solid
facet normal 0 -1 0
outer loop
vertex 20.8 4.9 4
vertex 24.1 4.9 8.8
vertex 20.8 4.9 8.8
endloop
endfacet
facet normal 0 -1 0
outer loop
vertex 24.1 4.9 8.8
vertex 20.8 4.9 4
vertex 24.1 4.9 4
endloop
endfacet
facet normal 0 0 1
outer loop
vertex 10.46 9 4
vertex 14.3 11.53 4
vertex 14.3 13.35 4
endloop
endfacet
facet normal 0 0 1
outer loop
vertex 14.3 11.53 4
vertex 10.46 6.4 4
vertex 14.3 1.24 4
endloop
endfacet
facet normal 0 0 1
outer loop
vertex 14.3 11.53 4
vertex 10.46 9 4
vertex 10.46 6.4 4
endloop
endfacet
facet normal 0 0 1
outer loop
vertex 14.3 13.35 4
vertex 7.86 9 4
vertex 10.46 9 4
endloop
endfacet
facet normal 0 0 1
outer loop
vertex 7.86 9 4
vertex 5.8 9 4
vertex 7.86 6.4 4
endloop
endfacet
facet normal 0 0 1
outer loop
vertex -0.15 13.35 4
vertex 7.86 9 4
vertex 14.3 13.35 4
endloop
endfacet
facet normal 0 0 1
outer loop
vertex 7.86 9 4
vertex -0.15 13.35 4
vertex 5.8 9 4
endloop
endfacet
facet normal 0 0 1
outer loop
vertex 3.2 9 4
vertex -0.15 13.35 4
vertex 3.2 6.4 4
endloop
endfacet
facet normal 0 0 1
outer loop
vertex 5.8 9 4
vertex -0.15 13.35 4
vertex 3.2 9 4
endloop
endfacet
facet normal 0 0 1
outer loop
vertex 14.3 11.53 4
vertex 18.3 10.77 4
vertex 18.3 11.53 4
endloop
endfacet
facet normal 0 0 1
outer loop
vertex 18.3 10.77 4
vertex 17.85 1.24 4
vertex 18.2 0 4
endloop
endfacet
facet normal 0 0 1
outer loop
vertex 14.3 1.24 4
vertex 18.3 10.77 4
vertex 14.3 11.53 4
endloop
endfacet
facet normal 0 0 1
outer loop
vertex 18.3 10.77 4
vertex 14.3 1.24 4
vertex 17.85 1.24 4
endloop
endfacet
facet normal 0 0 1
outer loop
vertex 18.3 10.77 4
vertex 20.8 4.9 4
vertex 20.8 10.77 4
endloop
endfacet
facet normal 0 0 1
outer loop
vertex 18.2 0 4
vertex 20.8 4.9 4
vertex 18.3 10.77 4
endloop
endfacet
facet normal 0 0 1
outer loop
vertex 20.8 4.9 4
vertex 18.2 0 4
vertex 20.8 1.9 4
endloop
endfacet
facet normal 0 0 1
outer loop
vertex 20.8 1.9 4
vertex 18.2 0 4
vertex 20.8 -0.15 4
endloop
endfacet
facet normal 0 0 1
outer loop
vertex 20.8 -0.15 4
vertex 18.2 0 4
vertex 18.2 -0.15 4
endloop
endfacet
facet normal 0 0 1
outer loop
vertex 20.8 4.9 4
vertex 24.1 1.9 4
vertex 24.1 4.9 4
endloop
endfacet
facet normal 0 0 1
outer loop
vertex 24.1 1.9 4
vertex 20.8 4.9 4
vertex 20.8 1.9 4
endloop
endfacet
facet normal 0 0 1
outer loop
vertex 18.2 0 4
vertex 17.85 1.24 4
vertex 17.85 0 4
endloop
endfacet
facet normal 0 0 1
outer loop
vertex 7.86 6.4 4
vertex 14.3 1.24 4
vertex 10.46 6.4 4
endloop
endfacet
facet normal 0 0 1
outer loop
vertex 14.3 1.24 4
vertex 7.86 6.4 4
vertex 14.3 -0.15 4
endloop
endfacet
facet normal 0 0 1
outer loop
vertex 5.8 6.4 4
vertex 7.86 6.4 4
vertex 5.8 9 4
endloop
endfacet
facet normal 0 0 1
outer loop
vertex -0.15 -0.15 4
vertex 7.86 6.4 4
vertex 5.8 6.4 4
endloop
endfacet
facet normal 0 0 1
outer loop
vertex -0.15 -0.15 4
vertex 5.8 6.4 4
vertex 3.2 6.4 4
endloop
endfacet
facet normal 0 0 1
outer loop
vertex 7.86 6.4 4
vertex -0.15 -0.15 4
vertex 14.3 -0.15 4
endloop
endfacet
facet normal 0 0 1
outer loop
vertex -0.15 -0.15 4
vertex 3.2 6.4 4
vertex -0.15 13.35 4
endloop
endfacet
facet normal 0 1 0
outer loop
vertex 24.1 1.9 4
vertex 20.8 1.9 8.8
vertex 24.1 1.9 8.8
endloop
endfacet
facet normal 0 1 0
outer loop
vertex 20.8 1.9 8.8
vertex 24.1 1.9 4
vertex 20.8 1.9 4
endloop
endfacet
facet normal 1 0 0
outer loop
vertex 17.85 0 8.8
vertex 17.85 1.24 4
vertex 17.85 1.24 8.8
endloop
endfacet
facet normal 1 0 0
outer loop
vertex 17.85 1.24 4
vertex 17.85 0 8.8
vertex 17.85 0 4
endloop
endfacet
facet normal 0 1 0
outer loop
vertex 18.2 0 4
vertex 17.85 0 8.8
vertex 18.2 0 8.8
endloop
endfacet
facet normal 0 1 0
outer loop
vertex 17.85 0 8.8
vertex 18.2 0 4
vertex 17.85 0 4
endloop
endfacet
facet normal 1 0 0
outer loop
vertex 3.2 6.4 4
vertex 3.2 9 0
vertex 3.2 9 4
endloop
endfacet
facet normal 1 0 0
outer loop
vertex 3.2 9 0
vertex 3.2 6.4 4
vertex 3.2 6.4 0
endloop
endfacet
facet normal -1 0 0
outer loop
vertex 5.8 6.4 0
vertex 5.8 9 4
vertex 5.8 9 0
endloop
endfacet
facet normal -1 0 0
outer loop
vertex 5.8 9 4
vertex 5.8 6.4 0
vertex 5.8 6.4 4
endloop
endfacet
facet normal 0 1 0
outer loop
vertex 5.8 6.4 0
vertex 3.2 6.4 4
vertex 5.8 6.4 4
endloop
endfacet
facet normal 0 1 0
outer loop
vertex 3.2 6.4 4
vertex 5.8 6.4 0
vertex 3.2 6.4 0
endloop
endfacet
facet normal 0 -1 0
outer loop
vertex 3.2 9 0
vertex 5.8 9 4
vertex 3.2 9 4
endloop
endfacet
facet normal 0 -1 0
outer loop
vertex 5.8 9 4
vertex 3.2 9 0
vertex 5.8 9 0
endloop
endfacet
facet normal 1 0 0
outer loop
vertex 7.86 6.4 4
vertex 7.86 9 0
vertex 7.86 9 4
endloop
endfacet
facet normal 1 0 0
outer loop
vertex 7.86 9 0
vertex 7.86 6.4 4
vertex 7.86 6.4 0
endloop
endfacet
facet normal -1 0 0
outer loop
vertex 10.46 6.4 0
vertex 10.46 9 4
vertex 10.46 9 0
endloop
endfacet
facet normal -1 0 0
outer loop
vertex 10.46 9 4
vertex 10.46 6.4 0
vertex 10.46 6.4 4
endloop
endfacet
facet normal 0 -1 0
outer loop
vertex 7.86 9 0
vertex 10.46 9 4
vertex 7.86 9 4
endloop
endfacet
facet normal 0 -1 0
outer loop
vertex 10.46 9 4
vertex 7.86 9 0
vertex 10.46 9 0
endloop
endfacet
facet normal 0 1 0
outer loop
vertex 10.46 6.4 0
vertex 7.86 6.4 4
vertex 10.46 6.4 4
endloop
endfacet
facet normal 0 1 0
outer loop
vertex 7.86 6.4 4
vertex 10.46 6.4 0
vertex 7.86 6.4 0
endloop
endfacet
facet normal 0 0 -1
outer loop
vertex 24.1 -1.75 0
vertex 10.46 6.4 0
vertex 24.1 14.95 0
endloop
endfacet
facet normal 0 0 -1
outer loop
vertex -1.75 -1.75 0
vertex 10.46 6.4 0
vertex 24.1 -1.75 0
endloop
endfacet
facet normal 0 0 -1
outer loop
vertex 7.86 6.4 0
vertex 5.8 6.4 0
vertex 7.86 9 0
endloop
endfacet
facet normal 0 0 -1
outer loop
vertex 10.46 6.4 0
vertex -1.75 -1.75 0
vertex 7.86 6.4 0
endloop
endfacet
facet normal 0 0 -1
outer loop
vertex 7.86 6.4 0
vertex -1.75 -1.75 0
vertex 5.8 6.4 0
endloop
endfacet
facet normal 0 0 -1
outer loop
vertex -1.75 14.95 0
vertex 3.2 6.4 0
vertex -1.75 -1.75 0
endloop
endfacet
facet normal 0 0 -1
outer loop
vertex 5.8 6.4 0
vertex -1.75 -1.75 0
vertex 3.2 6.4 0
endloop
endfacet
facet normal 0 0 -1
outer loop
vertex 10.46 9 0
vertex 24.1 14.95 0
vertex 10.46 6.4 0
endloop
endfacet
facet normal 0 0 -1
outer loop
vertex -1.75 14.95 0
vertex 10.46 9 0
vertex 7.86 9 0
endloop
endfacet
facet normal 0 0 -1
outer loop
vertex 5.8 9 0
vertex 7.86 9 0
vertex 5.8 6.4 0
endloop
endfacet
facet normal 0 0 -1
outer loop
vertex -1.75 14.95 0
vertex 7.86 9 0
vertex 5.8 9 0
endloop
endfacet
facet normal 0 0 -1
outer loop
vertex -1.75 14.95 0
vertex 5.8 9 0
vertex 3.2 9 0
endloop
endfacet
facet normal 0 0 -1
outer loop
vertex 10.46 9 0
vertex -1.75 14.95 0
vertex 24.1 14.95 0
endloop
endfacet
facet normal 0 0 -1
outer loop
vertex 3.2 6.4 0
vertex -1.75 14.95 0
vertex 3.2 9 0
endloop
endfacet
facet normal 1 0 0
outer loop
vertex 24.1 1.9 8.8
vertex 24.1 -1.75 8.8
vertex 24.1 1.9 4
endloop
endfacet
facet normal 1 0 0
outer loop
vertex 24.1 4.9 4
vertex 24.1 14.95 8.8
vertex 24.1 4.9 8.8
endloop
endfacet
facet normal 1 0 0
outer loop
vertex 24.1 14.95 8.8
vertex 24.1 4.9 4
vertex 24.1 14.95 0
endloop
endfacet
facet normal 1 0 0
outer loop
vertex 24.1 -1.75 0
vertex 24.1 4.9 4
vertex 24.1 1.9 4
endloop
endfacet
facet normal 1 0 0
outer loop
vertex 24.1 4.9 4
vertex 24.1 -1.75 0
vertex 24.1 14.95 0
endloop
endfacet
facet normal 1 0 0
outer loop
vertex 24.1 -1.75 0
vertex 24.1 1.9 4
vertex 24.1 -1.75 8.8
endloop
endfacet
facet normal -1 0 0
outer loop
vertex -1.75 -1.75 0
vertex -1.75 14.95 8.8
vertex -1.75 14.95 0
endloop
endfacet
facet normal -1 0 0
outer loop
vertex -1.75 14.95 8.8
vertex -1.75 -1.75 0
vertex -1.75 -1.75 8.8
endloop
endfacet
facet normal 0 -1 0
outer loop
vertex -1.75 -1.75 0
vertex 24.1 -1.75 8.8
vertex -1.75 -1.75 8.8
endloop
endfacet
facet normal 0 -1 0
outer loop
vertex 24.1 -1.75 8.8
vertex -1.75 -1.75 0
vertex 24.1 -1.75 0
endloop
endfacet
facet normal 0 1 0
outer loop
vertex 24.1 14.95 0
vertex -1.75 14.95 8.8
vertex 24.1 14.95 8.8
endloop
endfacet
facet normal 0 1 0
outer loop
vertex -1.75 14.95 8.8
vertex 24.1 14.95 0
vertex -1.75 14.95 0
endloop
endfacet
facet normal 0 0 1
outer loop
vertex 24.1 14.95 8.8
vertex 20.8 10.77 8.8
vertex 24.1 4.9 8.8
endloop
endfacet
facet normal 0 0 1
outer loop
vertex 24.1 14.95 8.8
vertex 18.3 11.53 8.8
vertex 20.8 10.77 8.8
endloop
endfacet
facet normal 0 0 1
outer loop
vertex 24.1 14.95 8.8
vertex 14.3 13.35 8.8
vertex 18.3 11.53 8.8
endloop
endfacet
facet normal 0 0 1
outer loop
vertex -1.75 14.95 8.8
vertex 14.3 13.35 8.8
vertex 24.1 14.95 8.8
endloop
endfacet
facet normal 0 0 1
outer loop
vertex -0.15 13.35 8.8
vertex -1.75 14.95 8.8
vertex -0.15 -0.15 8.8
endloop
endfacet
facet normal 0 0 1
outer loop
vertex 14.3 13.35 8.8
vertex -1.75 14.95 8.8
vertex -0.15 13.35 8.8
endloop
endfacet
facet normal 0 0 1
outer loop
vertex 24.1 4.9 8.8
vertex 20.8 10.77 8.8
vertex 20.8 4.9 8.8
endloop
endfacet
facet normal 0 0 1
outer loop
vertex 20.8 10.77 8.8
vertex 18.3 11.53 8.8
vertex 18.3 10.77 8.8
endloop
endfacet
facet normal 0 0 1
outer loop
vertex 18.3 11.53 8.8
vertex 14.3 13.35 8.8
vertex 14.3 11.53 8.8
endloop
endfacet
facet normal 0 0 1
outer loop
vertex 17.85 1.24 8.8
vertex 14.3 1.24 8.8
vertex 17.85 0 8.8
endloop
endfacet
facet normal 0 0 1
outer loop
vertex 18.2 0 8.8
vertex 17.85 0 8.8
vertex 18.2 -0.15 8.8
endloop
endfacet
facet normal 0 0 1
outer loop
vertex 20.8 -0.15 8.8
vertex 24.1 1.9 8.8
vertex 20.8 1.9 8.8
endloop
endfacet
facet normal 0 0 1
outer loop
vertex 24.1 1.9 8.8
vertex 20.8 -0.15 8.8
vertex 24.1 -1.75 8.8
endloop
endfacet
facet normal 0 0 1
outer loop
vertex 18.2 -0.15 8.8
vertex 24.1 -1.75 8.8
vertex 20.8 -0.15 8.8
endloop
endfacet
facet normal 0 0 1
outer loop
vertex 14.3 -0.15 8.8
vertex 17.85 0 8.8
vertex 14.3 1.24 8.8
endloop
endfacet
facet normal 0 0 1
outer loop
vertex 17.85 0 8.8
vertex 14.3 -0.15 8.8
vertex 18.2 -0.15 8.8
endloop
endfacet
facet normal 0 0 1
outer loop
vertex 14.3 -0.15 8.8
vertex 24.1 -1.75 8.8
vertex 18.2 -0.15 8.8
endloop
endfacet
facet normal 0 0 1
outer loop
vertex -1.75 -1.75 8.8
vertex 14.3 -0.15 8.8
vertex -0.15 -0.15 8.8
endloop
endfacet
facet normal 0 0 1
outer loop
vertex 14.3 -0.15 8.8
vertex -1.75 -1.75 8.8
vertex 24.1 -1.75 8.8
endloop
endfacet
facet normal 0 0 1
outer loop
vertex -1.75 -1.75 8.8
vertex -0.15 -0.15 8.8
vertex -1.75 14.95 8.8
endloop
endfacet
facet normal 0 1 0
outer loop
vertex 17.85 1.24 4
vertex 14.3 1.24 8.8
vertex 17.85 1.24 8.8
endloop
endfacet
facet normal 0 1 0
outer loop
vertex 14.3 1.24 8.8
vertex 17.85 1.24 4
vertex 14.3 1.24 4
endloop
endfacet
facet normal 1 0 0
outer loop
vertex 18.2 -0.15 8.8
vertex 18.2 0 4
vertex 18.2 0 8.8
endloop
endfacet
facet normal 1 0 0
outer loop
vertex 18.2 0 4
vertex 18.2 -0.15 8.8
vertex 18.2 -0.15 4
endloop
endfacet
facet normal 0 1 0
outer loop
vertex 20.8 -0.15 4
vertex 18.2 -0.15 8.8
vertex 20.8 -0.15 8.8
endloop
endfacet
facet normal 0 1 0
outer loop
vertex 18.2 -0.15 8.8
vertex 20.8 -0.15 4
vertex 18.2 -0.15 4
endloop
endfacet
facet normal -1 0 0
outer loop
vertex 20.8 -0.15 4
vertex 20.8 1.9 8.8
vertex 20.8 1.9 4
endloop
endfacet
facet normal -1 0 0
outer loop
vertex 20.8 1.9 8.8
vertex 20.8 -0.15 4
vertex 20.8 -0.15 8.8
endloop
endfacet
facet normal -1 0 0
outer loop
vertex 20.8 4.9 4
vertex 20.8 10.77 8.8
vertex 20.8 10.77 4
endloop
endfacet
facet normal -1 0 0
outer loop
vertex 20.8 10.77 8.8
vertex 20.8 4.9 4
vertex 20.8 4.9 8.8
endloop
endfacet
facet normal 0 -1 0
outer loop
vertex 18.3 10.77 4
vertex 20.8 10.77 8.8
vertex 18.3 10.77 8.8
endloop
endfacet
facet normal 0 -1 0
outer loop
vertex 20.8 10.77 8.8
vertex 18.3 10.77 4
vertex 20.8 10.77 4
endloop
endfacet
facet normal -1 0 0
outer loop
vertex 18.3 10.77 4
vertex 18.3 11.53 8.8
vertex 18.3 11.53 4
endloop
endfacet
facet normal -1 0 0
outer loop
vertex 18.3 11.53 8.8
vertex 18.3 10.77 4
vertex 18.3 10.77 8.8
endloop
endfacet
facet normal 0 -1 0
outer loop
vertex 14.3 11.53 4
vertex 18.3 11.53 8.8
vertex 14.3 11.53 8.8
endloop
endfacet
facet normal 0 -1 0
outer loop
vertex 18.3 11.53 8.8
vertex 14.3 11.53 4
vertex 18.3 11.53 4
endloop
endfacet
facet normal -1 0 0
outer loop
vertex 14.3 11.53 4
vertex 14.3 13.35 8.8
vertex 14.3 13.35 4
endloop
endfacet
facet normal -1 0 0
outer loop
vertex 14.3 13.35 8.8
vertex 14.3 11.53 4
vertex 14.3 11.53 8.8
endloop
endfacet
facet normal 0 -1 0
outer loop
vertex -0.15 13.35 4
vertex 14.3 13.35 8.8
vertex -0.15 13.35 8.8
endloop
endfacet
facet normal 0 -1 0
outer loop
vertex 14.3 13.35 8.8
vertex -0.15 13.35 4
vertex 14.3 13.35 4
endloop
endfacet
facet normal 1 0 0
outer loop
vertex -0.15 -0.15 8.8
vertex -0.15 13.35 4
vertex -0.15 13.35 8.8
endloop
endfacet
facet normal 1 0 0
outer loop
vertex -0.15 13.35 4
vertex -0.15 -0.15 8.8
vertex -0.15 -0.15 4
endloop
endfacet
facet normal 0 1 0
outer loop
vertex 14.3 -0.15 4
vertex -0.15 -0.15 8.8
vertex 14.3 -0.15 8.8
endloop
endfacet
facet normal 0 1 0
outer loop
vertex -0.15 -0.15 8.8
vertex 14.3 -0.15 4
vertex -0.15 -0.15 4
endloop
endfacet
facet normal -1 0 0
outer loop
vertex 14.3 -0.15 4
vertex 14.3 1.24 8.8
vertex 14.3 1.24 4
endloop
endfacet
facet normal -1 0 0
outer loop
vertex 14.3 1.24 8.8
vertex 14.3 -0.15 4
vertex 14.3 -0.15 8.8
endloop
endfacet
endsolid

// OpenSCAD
// Колодка-отвод CAN вместо штатного дисплея Citroën C4 — копия разъёма дисплея, и штекер (розовая фишка жгута).
//
// Как устроена пара (совмещение фото фишки 111/photo_6 и разъёма дисплея коннектор/photo_8, фишка-в-разъёме.png):
//  - в разъём входит розовая часть фишки: тело с гнёздами, слева (вид в разъём) защёлка в пазу на всю высоту,
//    справа внизу ключ в кармане, снизу справа прилив;
//  - рёбра разъёма у паза сверху и снизу заходят в щель между защёлкой и телом фишки;
//  - пустоты над и под телом — для плеч чёрного рычага фишки (он обходит розовый торец сверху и снизу),
//    блоки разъёма заполняют места, где рычага нет.
// Масштаб — по разъёму: паз защёлки 3.54 / 3.44, ребро → нижний блок 9.61, стенка → конец блока 13.78,
// длина блока 5.44 (штангель). Фишка вписана в разъём по внешним краям (защёлка — паз, рычаг — карман ключа,
// верх и низ рычага — верх и низ полости), масштаб по X и Y совпал (0.876 / 0.86).
// Старый шаблон по одному фото фишки (15.6 px/мм) был мелким примерно в 1.18 раза.
//
// Координаты: вид в полость с открытой стороны (как на фото дисплея), X вправо от левой стенки полости,
// Y вверх от низа полости, мм.
//
// Экспорт:
//   openscad -D 'part="shroud"' -o колодка.stl колодка.scad        (колодка с дном и окнами под штыри)
//   openscad -D 'part="test"'   -o колодка-проба.stl колодка.scad  (рамка 4 мм без дна — примерка фишки)
//   openscad -D 'part="plug"'   -o штекер.stl колодка.scad         (розовый торец фишки, гнёздами вниз)

part = "shroud";   // "shroud" — колодка, "test" — рамка для примерки, "plug" — штекер

// Полость — по замерам разъёма экрана штангелем (18.11), обход по контуру:
// низ: блок 5.7, между блоком и ребром 10, ребро 0.65, паз 3.5; левая стенка 13.2;
// верх: паз 3.5, ребро 0.65, 10, ступень 4, ступень 2.5; правая стенка 6, ключ 1.8.
// Правый нижний угол расширен под крестик фишки (ключ + прилив 2.0): карман 2.3 вместо 0.8, блок 4.2 вместо 5.7,
// карман ключа 2.2…4.62. Рёбра 0.65 у паза убраны.
// Не замерены (взяты с фото, масштаб 0.846 к прежней модели): высоты рёбер 2.58 / 2.31, ступеней 1.82 / 0.76,
// блока 1.39, вылет кармана ключа 1.7. Карман справа внизу 0.8 — остаток ширины (20.65 - 3.5 - 0.65 - 10 - 5.7).
W = 20.65;  H = 13.2;
cavity = [
  [0.00, H],                                                                    // рёбер 0.65 нет (не печатаются, для посадки не нужны)
  [14.15, H], [14.15, 11.38], [18.15, 11.38], [18.15, 10.62], [W, 10.62],      // верхние ступени 4 и 2.5
  [W, 4.62], [22.35, 4.62], [22.35, 2.20], [W, 2.20],                          // правая стенка 6, карман ключа (шире: крестик)
  [W, 0.00], [18.35, 0.00], [18.35, 1.39], [14.15, 1.39], [14.15, 0.00],       // карман под прилив 2.3, нижний блок 4.2
  [0.00, 0.00]
];
X_MAX = 22.35;

// розовый торец фишки в тех же координатах (без рычага)
plug_face = [
  [0.15, 0.15], [0.15, 13.05], [3.35, 13.05], [3.35, 10.47], [4.30, 10.47], [4.30, 10.42],  // защёлка
  [20.50, 10.42], [20.50, 4.47], [22.20, 4.47], [22.20, 2.35], [20.50, 2.35],               // тело, ключ
  [20.50, 0.15], [18.50, 0.15], [18.50, 1.83],                                              // прилив
  [4.30, 1.83], [4.30, 2.46], [3.35, 2.46], [3.35, 0.15]                                    // щель под нижнее ребро
];

// гнёзда фишки. По фото шаг ~2.33 (сходится с фото фишки). Проверить: крайние гнёзда ряда
// по внешним краям = 5 * pitch + ~1 мм (2.33 → ~12.6, 2.54 → ~13.7).
pitch = 2.33;
cx = W / 2;
cols = [for (i = [0:5]) cx + (i - 2.5) * pitch];
rows = [7.70, 4.97];

clear = 0.15;      // зазор на сторону (печать)
wall = 1.6;
depth = 4.8;       // глубина полости = торец фишки 4.5 + 0.3: торец ложится почти на дно, рычаг — на край
floor_t = 4.0;     // дно; корпуса дюпонов CAN проходят его насквозь, верх корпуса вровень с дном полости
dup_w = 2.6;       // корпус дюпона 2.54 — посадка плотная
// CAN — пины 7 и 9: верхний ряд, 1-й и 3-й столбцы слева (вид в полость, как на фото дисплея).
// Проверено на автомобиле 18.11: CAN на этих пинах работает.
can = [[0, 0], [2, 0]];   // [столбец, ряд]
pin_hole = 1.6;    // окно под штырь 0.64 (диагональ 0.9) с запасом на усадку печати; штырь сам встаёт по гнезду фишки
test_h = 4.0;
plug_h = 4.5;      // торец фишки (замер)
hole = 0.9;

eps = 0.01;

module cav() offset(delta = clear) polygon(cavity);

// снаружи — прямоугольник
module outer() translate([-clear - wall, -clear - wall])
  square([X_MAX + 2 * (clear + wall), H + 2 * (clear + wall)]);

// правый нижний угол (крестик: ключ вбок и прилив вниз) — с запасом, но не вскрыт целиком:
// ключ проходит через сквозное окно в правой стенке, под прилив карман 2.8; угловая стойка и низ остаются.
key_y0 = 1.9;  key_y1 = 4.9;   // окно под ключ по высоте (ключ ~2.35…4.47)
lug_x0 = W - 2.8;              // карман под прилив от сюда до правой стенки
module corner(z0, h) {
  translate([W - eps, key_y0, z0]) cube([10, key_y1 - key_y0, h]);   // окно в правой стенке
  translate([lug_x0, 0, z0]) cube([W - lug_x0 + eps, key_y1, h]);    // карман под прилив
}

module shroud() difference() {
  linear_extrude(floor_t + depth) outer();
  translate([0, 0, floor_t]) linear_extrude(depth + eps) cav();
  corner(floor_t, depth + eps);
  for (c = can)   // сквозное квадратное окно под пластиковый корпус дюпона: корпус вровень с дном полости
    translate([cols[c[0]] - dup_w / 2, rows[c[1]] - dup_w / 2, -eps]) cube([dup_w, dup_w, floor_t + 2 * eps]);
}

module test() difference() {
  linear_extrude(test_h) outer();
  translate([0, 0, -eps]) linear_extrude(test_h + 2 * eps) cav();
  corner(-eps, test_h + 2 * eps);
}

// лежит так, как входит в колодку: гнёздами вниз
module plug() difference() {
  linear_extrude(plug_h) polygon(plug_face);
  for (x = cols, y = rows)
    translate([x - hole / 2, y - hole / 2, -eps]) cube([hole, hole, plug_h + 2 * eps]);
}

if (part == "test") test(); else if (part == "plug") plug(); else shroud();
